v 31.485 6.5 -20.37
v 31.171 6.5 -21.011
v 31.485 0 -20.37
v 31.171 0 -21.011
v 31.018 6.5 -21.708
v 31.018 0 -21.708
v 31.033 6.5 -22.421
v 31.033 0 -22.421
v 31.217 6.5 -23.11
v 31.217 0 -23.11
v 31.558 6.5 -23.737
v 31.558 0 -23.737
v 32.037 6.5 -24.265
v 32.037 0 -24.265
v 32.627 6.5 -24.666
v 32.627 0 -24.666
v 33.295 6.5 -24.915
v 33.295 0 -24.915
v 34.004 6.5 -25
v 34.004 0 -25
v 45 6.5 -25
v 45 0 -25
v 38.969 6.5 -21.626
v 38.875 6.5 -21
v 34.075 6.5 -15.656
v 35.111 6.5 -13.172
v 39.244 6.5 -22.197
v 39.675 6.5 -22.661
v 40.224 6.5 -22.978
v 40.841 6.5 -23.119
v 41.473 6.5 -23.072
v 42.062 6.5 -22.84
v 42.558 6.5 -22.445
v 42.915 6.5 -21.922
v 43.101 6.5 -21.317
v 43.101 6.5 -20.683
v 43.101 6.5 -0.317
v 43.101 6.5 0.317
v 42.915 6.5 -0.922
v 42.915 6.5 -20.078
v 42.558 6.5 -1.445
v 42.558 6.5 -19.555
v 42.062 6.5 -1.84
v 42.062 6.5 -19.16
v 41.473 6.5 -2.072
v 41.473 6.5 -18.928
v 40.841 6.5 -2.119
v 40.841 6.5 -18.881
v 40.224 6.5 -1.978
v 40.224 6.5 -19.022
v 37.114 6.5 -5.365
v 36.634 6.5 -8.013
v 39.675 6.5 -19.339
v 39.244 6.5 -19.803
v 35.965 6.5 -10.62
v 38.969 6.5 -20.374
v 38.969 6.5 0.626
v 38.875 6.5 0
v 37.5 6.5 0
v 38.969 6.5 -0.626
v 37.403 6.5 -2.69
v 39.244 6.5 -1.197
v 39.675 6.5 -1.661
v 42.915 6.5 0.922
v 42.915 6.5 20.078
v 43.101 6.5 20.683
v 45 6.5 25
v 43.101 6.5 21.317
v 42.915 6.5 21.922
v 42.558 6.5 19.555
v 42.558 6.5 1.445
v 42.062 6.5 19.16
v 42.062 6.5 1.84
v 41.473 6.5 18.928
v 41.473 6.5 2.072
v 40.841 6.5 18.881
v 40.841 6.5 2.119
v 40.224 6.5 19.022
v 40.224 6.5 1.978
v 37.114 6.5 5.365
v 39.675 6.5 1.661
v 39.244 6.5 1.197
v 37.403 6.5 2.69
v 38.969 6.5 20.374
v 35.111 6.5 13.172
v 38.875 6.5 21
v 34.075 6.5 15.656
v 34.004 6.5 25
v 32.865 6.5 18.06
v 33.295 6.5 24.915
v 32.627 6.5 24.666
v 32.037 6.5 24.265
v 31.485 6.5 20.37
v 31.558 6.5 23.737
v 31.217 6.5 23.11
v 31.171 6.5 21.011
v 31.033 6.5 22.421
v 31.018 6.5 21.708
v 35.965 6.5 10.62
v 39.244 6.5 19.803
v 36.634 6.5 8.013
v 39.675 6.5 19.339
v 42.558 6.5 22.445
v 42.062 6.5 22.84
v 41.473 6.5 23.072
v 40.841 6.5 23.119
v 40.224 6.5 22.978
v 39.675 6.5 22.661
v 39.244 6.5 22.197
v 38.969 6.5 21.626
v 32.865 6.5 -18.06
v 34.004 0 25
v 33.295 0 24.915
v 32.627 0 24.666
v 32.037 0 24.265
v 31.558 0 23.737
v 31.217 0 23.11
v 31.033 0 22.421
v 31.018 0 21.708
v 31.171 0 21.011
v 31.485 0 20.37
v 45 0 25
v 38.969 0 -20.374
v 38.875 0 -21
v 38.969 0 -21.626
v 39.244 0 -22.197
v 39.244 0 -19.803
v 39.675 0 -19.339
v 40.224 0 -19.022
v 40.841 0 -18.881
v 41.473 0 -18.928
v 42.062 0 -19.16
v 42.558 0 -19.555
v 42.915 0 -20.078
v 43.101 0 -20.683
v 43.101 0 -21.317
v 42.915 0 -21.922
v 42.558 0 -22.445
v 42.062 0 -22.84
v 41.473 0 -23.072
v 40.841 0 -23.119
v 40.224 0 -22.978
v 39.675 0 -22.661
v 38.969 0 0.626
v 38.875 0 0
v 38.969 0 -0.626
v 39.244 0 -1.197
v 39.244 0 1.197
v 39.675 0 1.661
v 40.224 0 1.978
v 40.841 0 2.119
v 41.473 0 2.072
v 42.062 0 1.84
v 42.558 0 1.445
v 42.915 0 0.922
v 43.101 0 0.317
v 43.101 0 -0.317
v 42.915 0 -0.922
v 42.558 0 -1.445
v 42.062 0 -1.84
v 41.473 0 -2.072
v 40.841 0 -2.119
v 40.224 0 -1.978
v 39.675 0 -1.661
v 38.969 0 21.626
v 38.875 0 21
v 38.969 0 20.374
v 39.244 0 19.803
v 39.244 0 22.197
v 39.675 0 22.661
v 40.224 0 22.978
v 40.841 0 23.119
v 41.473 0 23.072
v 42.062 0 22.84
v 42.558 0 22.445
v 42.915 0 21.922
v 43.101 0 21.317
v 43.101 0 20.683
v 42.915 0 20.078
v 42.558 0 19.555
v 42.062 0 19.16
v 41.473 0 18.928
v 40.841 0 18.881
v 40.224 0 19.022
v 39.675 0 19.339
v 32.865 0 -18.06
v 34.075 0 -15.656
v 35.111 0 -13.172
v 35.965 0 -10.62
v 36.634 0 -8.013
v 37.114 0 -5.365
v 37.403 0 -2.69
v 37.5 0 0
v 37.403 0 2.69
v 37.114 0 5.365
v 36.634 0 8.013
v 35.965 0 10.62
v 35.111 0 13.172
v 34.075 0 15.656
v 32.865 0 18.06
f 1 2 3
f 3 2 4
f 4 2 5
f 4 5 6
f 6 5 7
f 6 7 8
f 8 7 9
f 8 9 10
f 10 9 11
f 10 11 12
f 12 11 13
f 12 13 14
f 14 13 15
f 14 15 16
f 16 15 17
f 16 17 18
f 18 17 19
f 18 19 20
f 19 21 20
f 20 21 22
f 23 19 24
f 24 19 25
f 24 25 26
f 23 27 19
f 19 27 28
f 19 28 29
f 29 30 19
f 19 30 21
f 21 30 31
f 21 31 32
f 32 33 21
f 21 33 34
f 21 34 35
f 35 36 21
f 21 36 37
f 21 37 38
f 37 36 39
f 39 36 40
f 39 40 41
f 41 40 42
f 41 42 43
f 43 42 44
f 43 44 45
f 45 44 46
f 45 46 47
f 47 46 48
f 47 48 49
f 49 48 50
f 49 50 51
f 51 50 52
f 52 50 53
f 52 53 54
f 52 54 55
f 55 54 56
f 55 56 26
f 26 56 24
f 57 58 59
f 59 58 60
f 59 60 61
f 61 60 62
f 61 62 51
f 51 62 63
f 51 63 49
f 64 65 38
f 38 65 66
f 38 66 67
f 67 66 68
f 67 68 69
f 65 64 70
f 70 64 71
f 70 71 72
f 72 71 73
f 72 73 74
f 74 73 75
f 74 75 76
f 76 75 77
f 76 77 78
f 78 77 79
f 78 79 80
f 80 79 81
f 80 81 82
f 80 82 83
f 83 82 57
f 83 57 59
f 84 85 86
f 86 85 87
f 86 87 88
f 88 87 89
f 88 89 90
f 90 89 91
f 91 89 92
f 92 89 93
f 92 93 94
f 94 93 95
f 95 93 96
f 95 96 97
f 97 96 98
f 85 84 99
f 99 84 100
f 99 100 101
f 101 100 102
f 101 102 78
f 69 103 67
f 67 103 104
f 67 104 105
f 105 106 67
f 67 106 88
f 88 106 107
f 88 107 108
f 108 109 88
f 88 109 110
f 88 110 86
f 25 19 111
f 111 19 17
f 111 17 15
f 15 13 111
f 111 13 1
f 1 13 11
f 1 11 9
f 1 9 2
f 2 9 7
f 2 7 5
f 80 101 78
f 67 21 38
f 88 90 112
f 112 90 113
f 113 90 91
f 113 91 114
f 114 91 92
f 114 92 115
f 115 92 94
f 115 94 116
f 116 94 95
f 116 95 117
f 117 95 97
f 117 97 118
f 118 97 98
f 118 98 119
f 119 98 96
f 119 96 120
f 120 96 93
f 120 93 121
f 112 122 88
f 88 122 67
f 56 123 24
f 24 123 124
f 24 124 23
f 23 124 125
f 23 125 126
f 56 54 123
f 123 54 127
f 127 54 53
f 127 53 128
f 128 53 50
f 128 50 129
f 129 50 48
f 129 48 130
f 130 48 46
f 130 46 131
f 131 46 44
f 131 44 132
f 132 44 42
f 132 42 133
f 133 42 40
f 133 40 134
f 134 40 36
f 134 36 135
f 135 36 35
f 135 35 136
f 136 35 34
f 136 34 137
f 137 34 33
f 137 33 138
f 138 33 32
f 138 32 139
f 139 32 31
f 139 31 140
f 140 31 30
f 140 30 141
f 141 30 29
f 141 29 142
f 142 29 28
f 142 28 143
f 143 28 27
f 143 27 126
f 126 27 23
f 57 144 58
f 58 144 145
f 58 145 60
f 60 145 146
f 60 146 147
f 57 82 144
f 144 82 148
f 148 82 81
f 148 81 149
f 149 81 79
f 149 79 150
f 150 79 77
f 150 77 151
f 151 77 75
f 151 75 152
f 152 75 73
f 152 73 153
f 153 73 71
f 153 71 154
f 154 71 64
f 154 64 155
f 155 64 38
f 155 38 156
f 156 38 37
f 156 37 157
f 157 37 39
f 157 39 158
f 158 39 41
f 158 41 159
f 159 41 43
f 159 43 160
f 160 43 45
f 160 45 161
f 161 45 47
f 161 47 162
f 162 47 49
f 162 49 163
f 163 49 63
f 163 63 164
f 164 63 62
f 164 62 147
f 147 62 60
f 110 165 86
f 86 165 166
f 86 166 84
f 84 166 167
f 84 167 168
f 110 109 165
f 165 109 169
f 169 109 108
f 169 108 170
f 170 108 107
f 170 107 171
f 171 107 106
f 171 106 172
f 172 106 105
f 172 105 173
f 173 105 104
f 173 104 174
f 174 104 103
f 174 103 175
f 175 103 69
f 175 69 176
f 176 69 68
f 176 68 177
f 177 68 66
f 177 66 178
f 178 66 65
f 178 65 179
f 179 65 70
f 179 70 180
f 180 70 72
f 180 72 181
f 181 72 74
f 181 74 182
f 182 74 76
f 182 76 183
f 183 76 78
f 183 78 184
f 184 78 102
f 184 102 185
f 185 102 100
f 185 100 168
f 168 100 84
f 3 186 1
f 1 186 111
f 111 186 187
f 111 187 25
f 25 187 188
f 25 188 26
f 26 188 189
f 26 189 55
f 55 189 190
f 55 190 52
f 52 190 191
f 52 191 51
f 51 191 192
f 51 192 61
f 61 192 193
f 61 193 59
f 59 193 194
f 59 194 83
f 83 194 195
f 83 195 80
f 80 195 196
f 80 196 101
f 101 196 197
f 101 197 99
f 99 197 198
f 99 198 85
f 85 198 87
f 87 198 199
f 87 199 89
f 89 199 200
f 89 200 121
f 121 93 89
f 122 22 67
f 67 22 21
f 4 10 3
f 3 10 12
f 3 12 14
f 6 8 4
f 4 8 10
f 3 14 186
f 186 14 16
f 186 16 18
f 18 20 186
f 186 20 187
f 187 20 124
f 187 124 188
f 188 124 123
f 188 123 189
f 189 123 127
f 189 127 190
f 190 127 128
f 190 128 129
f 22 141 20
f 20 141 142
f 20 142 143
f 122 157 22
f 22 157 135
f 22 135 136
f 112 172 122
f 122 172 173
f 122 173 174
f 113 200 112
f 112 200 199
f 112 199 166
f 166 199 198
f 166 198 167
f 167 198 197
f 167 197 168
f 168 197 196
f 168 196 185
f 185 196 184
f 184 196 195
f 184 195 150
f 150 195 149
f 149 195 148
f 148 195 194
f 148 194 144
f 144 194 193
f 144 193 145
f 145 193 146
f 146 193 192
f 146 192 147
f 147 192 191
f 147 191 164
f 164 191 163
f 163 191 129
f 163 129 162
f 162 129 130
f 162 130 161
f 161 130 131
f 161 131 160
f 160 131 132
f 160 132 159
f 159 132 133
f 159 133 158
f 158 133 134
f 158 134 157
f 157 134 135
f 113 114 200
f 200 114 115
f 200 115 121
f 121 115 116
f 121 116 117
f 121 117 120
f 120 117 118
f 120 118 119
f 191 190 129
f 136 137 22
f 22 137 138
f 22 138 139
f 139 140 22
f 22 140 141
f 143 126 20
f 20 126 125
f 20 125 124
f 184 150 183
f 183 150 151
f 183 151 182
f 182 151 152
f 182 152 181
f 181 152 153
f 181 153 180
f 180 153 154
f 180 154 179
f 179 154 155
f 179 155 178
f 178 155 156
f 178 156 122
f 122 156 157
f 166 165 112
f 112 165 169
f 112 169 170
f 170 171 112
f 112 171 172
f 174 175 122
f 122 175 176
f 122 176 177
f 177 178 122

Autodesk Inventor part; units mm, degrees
ref_plane "YZ Plane" through (0, 0, 0) normal (1, 0, 0) x (0, 1, 0)
ref_plane "XZ Plane" through (0, 0, 0) normal (0, 1, 0) x (-1, 0, 0)
ref_plane "XY Plane" through (0, 0, 0) normal (0, 0, 1) x (1, 0, 0)
sketch "Sketch1" plane through (0, 0, 0) normal (0, 1, 0) x (-1, 0, 0)
  arc A0 (-27.9508, 25) -> (-27.9508, -25) centre (0, 0) ccw
  line L0 (-27.9508, 25) -> (-45, 25)
  line L1 (-27.9508, -25) -> (-45, -25)
  line L2 (-45, 25) -> (-45, -25)
  circle A1 centre (-41, 21) radius 2.125
  circle A2 centre (-41, 0) radius 2.125
  circle A3 centre (-41, -21) radius 2.125
  dimension "d0" = 75
  dimension "d3" = 25
  dimension "d4" = 25
  dimension "d5" = 45
  dimension "d6" = 4.25
  dimension "d7" = 4.25
  dimension "d8" = 4.25
  dimension "d9" = 4
  dimension "d10" = 4
  dimension "d11" = 4
  dimension "d12" = 25
  dimension "d13" = 4
  dimension "d14" = 4
extrude "Extrusion1" add sketch "Sketch1" along normal blind 6.5
fillet "Fillet1" radius 3 2 edges at (27.9508, 3.25, 25) (27.9508, 3.25, -25)
properties part number "feeder_stack"
